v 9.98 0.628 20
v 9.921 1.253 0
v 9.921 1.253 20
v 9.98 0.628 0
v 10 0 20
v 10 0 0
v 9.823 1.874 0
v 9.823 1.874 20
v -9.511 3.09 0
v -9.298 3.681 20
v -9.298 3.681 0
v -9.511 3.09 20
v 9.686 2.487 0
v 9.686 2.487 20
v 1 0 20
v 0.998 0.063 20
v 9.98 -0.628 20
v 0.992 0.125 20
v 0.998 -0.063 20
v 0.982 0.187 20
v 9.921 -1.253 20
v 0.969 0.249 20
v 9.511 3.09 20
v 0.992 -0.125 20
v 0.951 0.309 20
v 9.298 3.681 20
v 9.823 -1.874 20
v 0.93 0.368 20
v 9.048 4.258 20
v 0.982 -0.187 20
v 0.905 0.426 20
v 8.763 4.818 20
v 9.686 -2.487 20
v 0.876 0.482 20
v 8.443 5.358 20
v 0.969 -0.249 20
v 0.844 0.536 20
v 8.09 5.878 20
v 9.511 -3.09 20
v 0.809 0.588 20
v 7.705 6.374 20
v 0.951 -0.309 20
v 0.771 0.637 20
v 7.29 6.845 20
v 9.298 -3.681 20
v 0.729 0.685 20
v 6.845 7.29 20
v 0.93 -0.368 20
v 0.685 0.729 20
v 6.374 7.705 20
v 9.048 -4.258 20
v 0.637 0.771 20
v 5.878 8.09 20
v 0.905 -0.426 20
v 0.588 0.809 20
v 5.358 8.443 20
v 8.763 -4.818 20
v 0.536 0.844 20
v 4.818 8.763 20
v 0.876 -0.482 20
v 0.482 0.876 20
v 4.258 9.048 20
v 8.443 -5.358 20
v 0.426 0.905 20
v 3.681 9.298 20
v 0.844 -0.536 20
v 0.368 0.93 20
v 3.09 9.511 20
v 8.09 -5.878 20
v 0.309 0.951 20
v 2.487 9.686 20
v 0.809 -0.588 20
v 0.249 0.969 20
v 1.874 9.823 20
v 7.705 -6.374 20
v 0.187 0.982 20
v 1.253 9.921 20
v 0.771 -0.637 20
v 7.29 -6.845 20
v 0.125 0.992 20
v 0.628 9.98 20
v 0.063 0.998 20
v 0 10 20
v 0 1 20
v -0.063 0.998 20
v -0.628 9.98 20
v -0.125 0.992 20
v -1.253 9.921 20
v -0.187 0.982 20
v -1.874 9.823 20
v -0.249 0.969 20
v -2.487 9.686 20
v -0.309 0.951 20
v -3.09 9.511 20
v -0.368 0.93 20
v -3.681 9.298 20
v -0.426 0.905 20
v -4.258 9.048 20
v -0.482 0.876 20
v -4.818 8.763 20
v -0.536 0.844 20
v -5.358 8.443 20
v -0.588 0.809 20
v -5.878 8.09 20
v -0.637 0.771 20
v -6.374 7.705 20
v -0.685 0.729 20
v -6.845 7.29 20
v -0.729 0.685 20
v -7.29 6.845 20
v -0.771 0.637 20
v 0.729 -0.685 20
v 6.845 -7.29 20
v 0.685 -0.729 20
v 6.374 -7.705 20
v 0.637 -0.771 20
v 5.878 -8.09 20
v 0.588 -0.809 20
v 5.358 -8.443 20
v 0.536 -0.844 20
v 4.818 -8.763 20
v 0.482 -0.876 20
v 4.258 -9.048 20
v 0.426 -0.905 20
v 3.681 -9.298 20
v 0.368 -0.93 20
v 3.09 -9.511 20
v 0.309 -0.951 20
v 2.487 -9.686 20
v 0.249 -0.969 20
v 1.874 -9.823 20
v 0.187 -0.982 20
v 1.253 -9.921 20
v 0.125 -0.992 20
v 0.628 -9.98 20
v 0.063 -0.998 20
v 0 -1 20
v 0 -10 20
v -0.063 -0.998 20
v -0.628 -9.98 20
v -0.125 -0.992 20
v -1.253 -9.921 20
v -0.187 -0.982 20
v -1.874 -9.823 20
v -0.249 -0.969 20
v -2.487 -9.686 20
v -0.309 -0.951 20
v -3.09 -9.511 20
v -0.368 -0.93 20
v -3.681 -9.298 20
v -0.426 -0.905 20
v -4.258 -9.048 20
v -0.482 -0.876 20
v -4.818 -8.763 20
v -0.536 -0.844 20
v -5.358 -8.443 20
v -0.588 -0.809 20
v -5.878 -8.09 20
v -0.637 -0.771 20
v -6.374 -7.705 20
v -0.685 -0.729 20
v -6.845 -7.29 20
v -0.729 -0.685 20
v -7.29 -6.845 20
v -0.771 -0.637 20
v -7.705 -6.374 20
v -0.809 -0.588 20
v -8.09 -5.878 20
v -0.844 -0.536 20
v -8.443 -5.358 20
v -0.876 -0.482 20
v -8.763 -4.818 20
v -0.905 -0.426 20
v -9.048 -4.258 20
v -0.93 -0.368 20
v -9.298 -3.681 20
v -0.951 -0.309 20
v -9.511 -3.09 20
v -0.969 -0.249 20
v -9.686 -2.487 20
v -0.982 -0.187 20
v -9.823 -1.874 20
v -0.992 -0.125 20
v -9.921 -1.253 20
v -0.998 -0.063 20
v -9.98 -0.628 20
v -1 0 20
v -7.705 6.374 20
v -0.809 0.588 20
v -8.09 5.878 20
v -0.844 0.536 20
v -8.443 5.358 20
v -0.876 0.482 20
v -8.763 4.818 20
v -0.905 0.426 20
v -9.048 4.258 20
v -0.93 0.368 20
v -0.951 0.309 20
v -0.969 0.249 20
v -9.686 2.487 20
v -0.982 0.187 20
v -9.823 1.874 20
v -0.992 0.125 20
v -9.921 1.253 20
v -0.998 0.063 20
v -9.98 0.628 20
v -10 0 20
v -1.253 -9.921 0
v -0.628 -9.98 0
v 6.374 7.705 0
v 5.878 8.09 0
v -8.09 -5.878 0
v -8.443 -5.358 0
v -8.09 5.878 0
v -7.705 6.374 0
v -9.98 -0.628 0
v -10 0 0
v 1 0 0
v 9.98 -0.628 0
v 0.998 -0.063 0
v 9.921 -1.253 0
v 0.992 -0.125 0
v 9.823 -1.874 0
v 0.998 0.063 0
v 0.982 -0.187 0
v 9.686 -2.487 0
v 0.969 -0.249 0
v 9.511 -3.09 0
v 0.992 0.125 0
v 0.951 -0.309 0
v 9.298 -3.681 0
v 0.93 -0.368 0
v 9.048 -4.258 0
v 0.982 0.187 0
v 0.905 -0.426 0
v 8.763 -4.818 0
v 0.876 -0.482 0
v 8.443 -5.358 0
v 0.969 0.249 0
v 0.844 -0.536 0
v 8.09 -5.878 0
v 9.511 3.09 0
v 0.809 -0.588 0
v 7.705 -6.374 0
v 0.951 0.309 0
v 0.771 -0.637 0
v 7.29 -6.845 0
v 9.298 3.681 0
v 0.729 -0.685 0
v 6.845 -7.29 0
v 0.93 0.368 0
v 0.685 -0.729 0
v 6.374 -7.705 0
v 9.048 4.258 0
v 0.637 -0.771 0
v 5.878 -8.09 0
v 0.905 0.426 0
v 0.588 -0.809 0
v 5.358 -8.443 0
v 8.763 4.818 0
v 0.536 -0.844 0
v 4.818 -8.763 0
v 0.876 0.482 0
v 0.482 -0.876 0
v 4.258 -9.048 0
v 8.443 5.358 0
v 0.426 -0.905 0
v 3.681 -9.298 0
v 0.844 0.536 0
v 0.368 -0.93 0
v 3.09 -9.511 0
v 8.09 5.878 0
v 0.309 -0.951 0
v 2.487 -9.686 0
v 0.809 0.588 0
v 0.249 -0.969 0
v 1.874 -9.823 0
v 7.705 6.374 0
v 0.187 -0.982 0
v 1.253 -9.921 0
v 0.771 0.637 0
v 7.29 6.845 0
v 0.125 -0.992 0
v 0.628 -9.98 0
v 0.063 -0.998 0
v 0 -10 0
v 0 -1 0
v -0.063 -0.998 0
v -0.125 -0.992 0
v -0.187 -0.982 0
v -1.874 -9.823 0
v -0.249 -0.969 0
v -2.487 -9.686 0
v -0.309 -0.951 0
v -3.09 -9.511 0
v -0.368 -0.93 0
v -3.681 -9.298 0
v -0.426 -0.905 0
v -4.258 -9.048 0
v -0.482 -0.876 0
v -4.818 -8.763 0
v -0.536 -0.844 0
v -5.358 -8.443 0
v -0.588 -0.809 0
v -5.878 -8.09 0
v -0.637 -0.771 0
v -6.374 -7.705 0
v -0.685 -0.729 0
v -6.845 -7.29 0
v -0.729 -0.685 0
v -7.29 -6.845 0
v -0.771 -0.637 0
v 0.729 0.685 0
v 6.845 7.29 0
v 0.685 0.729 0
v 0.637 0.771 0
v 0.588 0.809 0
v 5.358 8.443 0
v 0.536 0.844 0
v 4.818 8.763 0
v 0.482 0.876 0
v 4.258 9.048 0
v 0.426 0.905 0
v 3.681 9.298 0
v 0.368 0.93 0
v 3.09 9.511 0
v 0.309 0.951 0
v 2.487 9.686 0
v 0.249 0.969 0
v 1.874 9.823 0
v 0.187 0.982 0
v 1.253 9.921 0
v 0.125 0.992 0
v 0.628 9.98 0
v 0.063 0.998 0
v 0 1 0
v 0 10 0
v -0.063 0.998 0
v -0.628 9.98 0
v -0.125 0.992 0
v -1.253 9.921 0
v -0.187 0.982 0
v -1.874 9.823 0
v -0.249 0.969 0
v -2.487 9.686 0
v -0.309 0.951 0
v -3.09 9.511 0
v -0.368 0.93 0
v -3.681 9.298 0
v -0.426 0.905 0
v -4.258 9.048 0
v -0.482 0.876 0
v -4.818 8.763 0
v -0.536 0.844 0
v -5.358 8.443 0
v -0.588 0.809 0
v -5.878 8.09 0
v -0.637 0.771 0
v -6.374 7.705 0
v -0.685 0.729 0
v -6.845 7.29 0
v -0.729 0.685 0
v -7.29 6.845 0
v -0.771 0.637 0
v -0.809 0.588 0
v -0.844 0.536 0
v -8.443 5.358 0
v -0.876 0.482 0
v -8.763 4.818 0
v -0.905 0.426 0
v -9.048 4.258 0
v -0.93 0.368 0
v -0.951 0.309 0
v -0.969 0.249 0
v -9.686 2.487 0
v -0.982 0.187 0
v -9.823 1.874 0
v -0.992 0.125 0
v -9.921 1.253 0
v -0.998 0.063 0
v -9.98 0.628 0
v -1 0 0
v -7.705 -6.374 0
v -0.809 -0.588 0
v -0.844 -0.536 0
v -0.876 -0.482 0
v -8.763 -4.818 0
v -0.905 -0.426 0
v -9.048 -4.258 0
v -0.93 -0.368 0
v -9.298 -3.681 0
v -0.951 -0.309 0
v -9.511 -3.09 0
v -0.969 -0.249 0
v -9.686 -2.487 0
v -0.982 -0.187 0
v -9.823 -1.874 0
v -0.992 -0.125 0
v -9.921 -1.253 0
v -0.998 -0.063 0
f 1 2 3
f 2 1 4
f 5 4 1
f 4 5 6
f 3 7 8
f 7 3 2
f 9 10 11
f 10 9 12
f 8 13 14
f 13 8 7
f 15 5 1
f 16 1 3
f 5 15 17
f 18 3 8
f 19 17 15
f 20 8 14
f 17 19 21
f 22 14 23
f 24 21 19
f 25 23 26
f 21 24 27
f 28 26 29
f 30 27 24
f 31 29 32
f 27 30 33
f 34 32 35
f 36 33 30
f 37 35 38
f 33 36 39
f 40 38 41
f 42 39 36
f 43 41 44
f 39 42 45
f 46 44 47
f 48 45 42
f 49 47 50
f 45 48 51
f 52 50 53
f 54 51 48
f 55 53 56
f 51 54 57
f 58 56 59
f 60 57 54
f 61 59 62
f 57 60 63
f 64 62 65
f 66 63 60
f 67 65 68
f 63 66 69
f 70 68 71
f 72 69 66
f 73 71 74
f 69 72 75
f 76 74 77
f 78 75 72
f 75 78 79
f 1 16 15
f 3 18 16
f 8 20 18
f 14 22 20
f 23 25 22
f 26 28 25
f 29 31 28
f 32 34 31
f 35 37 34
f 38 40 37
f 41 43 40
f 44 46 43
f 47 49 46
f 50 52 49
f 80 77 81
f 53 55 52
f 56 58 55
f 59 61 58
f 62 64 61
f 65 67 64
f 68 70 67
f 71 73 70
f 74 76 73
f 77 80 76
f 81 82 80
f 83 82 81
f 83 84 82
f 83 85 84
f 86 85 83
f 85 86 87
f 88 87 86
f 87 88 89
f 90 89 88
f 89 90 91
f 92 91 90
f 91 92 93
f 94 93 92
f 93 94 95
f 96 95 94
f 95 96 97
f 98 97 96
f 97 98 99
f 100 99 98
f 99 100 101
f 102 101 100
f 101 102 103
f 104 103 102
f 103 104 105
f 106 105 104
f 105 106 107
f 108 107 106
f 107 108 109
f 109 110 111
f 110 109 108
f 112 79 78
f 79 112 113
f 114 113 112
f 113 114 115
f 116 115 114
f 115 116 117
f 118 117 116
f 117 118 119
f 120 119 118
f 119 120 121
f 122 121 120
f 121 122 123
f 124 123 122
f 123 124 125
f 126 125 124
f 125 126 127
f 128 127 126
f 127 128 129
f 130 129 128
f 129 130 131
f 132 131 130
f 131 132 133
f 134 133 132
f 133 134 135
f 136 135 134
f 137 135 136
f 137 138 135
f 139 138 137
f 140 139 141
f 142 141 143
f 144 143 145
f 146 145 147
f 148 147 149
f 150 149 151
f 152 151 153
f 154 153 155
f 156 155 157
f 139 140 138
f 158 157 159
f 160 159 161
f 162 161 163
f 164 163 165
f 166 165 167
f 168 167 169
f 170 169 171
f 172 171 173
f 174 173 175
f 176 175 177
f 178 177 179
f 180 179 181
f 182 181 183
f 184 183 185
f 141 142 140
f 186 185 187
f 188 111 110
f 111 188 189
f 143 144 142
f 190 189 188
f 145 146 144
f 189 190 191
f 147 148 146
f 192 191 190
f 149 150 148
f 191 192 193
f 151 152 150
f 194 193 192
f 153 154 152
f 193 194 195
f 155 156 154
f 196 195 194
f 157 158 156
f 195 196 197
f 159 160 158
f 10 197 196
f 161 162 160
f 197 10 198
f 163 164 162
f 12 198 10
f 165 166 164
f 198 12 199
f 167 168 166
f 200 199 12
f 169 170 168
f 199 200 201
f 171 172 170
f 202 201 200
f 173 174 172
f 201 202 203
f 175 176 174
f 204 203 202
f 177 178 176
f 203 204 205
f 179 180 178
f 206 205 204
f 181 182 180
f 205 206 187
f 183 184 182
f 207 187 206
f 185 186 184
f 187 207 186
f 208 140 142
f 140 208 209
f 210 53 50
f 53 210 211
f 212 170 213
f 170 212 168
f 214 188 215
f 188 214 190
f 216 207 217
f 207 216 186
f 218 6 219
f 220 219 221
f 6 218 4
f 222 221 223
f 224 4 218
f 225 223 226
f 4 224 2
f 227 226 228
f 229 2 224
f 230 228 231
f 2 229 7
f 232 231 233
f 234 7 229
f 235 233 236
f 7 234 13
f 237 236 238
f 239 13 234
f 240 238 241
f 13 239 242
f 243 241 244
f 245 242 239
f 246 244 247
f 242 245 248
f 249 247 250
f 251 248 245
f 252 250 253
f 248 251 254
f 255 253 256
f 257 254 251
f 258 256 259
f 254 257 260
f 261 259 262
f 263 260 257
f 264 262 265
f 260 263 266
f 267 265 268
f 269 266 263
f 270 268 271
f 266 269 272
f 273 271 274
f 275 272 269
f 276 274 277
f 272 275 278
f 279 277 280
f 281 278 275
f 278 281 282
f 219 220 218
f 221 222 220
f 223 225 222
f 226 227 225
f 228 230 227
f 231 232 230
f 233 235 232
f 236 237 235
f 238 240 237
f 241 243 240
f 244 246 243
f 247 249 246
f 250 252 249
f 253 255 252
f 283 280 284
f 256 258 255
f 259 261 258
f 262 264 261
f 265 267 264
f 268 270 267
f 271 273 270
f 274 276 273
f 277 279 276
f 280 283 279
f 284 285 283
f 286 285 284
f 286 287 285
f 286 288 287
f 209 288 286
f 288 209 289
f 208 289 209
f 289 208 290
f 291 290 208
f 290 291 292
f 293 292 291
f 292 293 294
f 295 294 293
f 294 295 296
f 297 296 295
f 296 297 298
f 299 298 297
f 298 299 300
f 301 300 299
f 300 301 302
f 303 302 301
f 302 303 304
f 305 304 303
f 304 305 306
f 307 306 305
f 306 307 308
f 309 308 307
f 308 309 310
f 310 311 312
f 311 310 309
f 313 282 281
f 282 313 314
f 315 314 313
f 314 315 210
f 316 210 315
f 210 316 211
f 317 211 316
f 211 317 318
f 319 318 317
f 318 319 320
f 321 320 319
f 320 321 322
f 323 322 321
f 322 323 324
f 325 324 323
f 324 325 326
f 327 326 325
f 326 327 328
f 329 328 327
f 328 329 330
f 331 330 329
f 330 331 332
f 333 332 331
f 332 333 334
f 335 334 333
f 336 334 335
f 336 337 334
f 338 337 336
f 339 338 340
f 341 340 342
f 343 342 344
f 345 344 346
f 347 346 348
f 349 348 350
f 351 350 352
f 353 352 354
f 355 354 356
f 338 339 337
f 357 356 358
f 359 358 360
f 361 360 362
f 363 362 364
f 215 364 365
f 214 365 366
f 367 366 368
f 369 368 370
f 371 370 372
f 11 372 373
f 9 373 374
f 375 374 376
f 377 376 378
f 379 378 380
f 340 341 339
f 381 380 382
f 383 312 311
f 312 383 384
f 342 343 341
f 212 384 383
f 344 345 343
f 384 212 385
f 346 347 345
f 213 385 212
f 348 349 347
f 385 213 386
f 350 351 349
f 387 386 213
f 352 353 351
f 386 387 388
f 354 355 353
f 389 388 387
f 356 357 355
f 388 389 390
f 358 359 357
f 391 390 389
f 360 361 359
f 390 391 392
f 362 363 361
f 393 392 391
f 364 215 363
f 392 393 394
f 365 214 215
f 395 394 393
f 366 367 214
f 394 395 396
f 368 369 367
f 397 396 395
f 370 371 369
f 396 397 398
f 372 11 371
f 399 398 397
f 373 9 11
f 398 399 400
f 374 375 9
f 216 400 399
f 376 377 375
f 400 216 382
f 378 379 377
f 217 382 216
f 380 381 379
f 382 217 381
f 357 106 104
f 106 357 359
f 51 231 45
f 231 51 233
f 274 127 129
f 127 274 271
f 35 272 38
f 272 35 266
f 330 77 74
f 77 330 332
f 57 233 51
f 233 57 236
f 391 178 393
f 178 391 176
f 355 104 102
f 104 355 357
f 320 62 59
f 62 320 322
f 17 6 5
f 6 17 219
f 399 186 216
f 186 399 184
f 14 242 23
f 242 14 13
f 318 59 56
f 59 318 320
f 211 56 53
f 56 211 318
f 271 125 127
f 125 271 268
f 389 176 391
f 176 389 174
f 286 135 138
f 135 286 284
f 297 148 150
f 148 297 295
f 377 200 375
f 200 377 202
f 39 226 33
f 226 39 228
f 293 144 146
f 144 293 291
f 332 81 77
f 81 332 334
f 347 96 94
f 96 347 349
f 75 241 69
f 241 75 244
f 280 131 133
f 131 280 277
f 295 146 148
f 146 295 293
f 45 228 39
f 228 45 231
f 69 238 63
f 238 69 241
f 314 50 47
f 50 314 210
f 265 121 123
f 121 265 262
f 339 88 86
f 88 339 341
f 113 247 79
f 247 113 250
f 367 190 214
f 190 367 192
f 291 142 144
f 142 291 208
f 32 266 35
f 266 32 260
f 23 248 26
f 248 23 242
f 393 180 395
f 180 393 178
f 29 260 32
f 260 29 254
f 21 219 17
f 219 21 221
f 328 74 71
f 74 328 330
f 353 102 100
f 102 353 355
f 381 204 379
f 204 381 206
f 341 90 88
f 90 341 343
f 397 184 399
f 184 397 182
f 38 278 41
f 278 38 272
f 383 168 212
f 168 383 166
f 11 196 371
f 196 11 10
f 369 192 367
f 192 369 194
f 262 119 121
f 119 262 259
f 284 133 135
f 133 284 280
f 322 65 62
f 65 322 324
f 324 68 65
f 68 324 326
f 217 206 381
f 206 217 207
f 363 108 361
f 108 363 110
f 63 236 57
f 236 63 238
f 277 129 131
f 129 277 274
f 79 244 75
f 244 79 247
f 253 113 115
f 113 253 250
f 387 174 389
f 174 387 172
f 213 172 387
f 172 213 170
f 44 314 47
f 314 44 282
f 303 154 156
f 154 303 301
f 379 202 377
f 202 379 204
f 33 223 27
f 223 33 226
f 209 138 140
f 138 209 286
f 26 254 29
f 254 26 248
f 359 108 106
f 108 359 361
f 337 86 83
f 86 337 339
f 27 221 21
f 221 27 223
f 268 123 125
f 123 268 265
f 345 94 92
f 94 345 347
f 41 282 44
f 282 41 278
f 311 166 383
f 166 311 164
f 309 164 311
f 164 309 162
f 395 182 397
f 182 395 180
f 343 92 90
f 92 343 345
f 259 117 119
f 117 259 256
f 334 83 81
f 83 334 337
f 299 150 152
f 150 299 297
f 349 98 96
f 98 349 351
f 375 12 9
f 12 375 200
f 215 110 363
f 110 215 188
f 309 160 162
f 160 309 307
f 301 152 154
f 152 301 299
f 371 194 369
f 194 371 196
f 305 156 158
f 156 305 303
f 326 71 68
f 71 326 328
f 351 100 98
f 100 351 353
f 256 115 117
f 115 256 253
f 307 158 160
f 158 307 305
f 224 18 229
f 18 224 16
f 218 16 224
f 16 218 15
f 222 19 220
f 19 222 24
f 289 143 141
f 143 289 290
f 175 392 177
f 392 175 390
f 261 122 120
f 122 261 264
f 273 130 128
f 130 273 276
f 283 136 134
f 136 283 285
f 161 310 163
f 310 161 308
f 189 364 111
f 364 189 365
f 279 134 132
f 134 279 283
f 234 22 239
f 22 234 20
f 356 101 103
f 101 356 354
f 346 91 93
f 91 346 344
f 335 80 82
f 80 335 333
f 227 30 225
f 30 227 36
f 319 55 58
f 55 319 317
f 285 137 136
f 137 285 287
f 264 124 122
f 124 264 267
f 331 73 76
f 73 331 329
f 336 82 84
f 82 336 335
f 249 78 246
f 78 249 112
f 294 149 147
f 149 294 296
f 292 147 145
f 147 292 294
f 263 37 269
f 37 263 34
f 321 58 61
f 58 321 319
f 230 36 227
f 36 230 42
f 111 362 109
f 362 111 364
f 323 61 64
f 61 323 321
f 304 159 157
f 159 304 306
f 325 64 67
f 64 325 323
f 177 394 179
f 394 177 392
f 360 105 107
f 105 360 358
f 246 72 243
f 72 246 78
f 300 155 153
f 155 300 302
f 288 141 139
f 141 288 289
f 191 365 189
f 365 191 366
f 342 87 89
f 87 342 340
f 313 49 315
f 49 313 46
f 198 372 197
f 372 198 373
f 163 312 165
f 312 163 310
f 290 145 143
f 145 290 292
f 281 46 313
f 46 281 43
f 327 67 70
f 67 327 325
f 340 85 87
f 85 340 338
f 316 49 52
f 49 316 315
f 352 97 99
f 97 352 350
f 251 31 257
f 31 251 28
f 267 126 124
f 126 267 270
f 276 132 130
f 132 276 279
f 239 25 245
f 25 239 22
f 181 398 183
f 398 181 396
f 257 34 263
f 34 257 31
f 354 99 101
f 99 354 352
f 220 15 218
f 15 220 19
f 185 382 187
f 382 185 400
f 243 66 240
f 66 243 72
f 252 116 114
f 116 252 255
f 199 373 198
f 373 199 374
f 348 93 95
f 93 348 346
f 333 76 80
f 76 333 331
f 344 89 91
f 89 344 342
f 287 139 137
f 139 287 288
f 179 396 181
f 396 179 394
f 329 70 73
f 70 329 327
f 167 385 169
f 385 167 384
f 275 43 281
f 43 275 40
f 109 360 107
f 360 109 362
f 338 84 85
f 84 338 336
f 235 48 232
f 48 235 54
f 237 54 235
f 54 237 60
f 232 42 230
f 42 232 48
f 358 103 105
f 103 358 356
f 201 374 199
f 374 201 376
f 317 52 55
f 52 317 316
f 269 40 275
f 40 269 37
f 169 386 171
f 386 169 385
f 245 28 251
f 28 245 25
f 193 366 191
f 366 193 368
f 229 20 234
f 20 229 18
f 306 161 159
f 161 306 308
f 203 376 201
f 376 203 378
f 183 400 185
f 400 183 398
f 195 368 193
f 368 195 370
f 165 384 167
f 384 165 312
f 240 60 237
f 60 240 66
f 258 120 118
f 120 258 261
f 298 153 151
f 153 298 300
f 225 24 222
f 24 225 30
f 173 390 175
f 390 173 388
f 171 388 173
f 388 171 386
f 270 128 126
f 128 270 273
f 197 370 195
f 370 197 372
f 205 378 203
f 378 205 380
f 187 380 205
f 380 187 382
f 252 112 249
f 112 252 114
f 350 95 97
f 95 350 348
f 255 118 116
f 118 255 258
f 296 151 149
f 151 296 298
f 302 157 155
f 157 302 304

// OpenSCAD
// Joint parameters
joint_radius = 10;
joint_height = 20;
joint_width = 10;
hole_diameter = 2;
wall_thickness = 1;

difference() {
  cylinder(h = joint_height, r = joint_radius, $fn = 100);
  translate([0, 0, -0.1])
  cylinder(h = joint_height + 0.2, r = hole_diameter / 2, $fn = 100);
}
